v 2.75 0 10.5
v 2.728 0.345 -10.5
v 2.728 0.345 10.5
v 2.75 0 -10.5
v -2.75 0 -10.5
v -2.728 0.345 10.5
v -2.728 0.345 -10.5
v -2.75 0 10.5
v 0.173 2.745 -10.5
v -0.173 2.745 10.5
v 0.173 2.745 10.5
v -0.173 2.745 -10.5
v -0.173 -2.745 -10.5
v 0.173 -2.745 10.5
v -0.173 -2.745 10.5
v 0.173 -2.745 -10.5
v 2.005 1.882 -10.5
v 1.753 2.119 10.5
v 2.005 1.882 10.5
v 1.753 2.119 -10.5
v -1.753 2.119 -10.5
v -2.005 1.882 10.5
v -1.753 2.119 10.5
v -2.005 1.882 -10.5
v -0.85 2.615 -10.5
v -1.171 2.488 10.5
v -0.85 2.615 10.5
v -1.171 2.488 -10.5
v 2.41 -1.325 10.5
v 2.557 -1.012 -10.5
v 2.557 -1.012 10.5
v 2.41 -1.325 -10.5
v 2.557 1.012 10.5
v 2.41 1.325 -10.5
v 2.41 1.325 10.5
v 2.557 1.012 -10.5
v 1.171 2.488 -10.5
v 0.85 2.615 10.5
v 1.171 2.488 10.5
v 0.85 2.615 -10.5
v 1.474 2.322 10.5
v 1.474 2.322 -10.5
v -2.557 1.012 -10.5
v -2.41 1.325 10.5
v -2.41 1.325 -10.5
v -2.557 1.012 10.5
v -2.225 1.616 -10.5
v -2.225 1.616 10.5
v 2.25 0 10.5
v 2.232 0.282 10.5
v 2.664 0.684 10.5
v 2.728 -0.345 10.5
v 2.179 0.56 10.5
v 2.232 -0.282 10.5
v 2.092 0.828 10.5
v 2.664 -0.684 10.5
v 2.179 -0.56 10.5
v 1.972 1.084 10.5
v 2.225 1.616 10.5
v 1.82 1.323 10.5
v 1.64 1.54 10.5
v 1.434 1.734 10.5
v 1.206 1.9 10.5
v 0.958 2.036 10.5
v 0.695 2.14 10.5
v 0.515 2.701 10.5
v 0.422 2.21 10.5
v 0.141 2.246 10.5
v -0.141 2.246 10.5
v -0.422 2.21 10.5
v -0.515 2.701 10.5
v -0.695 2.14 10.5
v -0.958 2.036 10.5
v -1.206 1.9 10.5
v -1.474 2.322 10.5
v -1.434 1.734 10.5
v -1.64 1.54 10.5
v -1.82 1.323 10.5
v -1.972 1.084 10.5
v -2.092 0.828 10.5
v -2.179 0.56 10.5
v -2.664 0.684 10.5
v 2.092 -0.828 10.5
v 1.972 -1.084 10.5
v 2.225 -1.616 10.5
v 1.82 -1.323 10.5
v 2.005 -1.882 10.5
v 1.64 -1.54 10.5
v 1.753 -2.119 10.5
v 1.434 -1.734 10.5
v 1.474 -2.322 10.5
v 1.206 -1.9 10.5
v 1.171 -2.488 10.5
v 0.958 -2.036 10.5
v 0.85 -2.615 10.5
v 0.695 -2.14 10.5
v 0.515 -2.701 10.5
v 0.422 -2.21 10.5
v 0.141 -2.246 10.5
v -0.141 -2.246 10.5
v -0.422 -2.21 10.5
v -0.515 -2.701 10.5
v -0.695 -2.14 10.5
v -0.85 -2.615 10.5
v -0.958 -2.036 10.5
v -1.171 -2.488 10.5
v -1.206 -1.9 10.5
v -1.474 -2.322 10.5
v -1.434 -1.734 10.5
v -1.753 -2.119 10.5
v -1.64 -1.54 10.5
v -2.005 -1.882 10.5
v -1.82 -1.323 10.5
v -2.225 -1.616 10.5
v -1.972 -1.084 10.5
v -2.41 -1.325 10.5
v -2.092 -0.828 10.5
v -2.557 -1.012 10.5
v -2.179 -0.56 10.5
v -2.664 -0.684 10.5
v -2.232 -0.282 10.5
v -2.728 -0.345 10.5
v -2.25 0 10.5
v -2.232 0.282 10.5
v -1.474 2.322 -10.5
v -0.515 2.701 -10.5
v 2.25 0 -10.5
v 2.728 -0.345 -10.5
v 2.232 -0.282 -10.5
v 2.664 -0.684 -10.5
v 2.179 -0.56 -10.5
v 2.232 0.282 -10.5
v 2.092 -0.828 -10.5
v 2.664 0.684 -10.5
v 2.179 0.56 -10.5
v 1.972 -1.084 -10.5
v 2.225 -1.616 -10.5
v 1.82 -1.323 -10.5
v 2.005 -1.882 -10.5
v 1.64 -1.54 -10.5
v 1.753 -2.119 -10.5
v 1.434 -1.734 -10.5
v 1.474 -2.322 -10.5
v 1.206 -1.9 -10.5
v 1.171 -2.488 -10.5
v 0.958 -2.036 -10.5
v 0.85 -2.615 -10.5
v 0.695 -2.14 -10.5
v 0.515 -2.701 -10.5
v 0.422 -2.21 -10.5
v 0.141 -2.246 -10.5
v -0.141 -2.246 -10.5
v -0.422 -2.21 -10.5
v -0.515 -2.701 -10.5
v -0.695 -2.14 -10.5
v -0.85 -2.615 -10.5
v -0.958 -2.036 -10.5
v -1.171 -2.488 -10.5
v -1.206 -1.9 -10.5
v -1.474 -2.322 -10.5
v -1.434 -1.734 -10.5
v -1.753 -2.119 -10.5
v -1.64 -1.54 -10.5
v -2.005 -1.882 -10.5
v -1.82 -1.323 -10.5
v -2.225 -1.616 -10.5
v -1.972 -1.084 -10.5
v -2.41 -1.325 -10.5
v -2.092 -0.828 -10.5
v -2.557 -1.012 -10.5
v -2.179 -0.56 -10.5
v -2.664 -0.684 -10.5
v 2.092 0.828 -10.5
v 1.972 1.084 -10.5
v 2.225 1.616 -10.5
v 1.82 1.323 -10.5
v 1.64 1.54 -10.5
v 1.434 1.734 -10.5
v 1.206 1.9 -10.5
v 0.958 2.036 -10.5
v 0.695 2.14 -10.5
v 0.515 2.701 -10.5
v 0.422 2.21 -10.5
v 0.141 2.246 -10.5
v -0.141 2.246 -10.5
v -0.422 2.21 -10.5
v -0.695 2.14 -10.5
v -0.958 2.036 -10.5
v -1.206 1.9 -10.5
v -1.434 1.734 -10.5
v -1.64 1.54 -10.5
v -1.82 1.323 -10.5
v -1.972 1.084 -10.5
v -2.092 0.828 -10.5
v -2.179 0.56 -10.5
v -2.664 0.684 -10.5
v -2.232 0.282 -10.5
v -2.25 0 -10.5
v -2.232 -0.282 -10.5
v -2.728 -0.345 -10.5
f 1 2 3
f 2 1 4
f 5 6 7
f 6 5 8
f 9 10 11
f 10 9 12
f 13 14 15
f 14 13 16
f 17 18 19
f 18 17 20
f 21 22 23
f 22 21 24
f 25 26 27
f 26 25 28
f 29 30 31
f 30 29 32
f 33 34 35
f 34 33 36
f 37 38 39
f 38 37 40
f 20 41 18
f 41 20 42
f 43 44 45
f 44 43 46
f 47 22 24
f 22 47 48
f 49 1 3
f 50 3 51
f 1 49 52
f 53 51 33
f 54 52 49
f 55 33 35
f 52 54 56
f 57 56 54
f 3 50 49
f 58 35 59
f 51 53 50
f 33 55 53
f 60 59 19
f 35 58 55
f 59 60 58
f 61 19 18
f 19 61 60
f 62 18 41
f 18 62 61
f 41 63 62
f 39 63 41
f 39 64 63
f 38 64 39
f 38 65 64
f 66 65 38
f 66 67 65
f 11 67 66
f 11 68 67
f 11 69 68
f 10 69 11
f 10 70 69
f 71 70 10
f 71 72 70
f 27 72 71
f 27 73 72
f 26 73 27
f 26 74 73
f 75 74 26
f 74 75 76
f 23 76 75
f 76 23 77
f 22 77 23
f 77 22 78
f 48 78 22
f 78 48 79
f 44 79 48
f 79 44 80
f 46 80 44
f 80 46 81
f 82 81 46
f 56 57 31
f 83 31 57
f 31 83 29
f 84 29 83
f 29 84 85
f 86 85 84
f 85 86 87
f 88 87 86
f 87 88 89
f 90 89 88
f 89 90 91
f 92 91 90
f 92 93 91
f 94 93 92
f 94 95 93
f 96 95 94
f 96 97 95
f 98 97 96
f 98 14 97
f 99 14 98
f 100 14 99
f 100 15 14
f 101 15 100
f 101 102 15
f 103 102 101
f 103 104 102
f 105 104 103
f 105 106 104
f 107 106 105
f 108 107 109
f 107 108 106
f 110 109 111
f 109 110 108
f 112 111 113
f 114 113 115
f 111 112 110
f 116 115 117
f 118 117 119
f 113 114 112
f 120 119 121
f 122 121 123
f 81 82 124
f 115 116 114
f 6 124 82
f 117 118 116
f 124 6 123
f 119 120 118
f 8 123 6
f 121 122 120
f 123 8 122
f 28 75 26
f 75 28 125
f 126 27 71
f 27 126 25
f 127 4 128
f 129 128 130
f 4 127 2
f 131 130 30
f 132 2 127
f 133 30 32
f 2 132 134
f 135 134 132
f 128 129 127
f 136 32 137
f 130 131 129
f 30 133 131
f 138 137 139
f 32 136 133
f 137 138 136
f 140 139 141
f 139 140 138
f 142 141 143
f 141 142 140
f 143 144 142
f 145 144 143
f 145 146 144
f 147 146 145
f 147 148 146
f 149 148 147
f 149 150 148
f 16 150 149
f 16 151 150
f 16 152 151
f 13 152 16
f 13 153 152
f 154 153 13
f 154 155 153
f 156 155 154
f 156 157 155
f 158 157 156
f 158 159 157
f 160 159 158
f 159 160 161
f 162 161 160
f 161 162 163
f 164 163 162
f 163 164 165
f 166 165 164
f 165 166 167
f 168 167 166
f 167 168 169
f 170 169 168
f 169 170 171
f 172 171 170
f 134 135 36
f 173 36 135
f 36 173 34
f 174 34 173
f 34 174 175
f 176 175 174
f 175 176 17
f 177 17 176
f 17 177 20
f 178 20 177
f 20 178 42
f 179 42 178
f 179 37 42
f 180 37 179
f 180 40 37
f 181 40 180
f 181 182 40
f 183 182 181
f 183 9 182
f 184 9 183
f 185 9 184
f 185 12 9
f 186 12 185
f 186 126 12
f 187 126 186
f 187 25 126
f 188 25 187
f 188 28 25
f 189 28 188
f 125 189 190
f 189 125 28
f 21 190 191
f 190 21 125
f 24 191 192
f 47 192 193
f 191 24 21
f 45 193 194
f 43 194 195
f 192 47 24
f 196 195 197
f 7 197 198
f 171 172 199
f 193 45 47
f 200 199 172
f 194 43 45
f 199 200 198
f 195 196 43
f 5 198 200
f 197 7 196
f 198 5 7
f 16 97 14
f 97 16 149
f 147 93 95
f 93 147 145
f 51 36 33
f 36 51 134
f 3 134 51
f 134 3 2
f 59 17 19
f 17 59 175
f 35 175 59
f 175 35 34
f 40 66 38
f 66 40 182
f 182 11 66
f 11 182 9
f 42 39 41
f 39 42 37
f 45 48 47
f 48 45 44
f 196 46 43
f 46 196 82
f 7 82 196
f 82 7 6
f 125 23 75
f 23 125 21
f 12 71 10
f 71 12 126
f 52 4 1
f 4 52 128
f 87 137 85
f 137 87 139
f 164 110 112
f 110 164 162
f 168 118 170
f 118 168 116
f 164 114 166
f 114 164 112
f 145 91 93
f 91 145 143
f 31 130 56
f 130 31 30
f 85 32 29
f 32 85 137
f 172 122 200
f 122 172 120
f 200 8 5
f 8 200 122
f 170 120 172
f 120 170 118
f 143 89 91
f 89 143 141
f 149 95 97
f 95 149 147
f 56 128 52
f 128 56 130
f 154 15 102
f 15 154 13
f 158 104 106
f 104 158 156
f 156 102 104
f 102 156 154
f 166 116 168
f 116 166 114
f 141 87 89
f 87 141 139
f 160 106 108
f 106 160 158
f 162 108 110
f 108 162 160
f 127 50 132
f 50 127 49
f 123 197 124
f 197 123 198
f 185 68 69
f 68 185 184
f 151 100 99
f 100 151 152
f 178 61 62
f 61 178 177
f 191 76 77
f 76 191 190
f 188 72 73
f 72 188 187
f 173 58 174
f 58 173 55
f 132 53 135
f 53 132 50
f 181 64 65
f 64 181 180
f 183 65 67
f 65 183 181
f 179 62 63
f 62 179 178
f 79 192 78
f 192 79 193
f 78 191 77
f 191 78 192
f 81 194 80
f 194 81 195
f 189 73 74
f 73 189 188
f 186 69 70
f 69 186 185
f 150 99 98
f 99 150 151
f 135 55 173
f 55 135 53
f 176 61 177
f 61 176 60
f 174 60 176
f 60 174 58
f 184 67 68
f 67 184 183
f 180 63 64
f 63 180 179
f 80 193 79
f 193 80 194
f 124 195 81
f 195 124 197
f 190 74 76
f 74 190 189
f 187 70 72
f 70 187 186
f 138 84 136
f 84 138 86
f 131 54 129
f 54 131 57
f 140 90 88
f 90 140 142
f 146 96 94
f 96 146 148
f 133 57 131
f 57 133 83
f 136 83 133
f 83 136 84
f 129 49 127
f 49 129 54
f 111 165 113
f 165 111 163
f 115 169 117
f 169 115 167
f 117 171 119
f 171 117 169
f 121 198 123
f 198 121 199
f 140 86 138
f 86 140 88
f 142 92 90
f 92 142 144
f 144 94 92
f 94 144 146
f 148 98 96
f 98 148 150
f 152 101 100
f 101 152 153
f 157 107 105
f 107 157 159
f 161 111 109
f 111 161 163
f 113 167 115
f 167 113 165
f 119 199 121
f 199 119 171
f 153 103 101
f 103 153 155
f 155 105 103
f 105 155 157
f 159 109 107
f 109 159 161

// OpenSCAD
$fn = 50;


difference() {
	union() {
		translate(v = [0, 0, -10.5000000000]) {
			cylinder(h = 21, r = 2.7500000000);
		}
	}
	union() {
		translate(v = [0, 0, -100.0000000000]) {
			cylinder(h = 200, r = 2.2500000000);
		}
	}
}
